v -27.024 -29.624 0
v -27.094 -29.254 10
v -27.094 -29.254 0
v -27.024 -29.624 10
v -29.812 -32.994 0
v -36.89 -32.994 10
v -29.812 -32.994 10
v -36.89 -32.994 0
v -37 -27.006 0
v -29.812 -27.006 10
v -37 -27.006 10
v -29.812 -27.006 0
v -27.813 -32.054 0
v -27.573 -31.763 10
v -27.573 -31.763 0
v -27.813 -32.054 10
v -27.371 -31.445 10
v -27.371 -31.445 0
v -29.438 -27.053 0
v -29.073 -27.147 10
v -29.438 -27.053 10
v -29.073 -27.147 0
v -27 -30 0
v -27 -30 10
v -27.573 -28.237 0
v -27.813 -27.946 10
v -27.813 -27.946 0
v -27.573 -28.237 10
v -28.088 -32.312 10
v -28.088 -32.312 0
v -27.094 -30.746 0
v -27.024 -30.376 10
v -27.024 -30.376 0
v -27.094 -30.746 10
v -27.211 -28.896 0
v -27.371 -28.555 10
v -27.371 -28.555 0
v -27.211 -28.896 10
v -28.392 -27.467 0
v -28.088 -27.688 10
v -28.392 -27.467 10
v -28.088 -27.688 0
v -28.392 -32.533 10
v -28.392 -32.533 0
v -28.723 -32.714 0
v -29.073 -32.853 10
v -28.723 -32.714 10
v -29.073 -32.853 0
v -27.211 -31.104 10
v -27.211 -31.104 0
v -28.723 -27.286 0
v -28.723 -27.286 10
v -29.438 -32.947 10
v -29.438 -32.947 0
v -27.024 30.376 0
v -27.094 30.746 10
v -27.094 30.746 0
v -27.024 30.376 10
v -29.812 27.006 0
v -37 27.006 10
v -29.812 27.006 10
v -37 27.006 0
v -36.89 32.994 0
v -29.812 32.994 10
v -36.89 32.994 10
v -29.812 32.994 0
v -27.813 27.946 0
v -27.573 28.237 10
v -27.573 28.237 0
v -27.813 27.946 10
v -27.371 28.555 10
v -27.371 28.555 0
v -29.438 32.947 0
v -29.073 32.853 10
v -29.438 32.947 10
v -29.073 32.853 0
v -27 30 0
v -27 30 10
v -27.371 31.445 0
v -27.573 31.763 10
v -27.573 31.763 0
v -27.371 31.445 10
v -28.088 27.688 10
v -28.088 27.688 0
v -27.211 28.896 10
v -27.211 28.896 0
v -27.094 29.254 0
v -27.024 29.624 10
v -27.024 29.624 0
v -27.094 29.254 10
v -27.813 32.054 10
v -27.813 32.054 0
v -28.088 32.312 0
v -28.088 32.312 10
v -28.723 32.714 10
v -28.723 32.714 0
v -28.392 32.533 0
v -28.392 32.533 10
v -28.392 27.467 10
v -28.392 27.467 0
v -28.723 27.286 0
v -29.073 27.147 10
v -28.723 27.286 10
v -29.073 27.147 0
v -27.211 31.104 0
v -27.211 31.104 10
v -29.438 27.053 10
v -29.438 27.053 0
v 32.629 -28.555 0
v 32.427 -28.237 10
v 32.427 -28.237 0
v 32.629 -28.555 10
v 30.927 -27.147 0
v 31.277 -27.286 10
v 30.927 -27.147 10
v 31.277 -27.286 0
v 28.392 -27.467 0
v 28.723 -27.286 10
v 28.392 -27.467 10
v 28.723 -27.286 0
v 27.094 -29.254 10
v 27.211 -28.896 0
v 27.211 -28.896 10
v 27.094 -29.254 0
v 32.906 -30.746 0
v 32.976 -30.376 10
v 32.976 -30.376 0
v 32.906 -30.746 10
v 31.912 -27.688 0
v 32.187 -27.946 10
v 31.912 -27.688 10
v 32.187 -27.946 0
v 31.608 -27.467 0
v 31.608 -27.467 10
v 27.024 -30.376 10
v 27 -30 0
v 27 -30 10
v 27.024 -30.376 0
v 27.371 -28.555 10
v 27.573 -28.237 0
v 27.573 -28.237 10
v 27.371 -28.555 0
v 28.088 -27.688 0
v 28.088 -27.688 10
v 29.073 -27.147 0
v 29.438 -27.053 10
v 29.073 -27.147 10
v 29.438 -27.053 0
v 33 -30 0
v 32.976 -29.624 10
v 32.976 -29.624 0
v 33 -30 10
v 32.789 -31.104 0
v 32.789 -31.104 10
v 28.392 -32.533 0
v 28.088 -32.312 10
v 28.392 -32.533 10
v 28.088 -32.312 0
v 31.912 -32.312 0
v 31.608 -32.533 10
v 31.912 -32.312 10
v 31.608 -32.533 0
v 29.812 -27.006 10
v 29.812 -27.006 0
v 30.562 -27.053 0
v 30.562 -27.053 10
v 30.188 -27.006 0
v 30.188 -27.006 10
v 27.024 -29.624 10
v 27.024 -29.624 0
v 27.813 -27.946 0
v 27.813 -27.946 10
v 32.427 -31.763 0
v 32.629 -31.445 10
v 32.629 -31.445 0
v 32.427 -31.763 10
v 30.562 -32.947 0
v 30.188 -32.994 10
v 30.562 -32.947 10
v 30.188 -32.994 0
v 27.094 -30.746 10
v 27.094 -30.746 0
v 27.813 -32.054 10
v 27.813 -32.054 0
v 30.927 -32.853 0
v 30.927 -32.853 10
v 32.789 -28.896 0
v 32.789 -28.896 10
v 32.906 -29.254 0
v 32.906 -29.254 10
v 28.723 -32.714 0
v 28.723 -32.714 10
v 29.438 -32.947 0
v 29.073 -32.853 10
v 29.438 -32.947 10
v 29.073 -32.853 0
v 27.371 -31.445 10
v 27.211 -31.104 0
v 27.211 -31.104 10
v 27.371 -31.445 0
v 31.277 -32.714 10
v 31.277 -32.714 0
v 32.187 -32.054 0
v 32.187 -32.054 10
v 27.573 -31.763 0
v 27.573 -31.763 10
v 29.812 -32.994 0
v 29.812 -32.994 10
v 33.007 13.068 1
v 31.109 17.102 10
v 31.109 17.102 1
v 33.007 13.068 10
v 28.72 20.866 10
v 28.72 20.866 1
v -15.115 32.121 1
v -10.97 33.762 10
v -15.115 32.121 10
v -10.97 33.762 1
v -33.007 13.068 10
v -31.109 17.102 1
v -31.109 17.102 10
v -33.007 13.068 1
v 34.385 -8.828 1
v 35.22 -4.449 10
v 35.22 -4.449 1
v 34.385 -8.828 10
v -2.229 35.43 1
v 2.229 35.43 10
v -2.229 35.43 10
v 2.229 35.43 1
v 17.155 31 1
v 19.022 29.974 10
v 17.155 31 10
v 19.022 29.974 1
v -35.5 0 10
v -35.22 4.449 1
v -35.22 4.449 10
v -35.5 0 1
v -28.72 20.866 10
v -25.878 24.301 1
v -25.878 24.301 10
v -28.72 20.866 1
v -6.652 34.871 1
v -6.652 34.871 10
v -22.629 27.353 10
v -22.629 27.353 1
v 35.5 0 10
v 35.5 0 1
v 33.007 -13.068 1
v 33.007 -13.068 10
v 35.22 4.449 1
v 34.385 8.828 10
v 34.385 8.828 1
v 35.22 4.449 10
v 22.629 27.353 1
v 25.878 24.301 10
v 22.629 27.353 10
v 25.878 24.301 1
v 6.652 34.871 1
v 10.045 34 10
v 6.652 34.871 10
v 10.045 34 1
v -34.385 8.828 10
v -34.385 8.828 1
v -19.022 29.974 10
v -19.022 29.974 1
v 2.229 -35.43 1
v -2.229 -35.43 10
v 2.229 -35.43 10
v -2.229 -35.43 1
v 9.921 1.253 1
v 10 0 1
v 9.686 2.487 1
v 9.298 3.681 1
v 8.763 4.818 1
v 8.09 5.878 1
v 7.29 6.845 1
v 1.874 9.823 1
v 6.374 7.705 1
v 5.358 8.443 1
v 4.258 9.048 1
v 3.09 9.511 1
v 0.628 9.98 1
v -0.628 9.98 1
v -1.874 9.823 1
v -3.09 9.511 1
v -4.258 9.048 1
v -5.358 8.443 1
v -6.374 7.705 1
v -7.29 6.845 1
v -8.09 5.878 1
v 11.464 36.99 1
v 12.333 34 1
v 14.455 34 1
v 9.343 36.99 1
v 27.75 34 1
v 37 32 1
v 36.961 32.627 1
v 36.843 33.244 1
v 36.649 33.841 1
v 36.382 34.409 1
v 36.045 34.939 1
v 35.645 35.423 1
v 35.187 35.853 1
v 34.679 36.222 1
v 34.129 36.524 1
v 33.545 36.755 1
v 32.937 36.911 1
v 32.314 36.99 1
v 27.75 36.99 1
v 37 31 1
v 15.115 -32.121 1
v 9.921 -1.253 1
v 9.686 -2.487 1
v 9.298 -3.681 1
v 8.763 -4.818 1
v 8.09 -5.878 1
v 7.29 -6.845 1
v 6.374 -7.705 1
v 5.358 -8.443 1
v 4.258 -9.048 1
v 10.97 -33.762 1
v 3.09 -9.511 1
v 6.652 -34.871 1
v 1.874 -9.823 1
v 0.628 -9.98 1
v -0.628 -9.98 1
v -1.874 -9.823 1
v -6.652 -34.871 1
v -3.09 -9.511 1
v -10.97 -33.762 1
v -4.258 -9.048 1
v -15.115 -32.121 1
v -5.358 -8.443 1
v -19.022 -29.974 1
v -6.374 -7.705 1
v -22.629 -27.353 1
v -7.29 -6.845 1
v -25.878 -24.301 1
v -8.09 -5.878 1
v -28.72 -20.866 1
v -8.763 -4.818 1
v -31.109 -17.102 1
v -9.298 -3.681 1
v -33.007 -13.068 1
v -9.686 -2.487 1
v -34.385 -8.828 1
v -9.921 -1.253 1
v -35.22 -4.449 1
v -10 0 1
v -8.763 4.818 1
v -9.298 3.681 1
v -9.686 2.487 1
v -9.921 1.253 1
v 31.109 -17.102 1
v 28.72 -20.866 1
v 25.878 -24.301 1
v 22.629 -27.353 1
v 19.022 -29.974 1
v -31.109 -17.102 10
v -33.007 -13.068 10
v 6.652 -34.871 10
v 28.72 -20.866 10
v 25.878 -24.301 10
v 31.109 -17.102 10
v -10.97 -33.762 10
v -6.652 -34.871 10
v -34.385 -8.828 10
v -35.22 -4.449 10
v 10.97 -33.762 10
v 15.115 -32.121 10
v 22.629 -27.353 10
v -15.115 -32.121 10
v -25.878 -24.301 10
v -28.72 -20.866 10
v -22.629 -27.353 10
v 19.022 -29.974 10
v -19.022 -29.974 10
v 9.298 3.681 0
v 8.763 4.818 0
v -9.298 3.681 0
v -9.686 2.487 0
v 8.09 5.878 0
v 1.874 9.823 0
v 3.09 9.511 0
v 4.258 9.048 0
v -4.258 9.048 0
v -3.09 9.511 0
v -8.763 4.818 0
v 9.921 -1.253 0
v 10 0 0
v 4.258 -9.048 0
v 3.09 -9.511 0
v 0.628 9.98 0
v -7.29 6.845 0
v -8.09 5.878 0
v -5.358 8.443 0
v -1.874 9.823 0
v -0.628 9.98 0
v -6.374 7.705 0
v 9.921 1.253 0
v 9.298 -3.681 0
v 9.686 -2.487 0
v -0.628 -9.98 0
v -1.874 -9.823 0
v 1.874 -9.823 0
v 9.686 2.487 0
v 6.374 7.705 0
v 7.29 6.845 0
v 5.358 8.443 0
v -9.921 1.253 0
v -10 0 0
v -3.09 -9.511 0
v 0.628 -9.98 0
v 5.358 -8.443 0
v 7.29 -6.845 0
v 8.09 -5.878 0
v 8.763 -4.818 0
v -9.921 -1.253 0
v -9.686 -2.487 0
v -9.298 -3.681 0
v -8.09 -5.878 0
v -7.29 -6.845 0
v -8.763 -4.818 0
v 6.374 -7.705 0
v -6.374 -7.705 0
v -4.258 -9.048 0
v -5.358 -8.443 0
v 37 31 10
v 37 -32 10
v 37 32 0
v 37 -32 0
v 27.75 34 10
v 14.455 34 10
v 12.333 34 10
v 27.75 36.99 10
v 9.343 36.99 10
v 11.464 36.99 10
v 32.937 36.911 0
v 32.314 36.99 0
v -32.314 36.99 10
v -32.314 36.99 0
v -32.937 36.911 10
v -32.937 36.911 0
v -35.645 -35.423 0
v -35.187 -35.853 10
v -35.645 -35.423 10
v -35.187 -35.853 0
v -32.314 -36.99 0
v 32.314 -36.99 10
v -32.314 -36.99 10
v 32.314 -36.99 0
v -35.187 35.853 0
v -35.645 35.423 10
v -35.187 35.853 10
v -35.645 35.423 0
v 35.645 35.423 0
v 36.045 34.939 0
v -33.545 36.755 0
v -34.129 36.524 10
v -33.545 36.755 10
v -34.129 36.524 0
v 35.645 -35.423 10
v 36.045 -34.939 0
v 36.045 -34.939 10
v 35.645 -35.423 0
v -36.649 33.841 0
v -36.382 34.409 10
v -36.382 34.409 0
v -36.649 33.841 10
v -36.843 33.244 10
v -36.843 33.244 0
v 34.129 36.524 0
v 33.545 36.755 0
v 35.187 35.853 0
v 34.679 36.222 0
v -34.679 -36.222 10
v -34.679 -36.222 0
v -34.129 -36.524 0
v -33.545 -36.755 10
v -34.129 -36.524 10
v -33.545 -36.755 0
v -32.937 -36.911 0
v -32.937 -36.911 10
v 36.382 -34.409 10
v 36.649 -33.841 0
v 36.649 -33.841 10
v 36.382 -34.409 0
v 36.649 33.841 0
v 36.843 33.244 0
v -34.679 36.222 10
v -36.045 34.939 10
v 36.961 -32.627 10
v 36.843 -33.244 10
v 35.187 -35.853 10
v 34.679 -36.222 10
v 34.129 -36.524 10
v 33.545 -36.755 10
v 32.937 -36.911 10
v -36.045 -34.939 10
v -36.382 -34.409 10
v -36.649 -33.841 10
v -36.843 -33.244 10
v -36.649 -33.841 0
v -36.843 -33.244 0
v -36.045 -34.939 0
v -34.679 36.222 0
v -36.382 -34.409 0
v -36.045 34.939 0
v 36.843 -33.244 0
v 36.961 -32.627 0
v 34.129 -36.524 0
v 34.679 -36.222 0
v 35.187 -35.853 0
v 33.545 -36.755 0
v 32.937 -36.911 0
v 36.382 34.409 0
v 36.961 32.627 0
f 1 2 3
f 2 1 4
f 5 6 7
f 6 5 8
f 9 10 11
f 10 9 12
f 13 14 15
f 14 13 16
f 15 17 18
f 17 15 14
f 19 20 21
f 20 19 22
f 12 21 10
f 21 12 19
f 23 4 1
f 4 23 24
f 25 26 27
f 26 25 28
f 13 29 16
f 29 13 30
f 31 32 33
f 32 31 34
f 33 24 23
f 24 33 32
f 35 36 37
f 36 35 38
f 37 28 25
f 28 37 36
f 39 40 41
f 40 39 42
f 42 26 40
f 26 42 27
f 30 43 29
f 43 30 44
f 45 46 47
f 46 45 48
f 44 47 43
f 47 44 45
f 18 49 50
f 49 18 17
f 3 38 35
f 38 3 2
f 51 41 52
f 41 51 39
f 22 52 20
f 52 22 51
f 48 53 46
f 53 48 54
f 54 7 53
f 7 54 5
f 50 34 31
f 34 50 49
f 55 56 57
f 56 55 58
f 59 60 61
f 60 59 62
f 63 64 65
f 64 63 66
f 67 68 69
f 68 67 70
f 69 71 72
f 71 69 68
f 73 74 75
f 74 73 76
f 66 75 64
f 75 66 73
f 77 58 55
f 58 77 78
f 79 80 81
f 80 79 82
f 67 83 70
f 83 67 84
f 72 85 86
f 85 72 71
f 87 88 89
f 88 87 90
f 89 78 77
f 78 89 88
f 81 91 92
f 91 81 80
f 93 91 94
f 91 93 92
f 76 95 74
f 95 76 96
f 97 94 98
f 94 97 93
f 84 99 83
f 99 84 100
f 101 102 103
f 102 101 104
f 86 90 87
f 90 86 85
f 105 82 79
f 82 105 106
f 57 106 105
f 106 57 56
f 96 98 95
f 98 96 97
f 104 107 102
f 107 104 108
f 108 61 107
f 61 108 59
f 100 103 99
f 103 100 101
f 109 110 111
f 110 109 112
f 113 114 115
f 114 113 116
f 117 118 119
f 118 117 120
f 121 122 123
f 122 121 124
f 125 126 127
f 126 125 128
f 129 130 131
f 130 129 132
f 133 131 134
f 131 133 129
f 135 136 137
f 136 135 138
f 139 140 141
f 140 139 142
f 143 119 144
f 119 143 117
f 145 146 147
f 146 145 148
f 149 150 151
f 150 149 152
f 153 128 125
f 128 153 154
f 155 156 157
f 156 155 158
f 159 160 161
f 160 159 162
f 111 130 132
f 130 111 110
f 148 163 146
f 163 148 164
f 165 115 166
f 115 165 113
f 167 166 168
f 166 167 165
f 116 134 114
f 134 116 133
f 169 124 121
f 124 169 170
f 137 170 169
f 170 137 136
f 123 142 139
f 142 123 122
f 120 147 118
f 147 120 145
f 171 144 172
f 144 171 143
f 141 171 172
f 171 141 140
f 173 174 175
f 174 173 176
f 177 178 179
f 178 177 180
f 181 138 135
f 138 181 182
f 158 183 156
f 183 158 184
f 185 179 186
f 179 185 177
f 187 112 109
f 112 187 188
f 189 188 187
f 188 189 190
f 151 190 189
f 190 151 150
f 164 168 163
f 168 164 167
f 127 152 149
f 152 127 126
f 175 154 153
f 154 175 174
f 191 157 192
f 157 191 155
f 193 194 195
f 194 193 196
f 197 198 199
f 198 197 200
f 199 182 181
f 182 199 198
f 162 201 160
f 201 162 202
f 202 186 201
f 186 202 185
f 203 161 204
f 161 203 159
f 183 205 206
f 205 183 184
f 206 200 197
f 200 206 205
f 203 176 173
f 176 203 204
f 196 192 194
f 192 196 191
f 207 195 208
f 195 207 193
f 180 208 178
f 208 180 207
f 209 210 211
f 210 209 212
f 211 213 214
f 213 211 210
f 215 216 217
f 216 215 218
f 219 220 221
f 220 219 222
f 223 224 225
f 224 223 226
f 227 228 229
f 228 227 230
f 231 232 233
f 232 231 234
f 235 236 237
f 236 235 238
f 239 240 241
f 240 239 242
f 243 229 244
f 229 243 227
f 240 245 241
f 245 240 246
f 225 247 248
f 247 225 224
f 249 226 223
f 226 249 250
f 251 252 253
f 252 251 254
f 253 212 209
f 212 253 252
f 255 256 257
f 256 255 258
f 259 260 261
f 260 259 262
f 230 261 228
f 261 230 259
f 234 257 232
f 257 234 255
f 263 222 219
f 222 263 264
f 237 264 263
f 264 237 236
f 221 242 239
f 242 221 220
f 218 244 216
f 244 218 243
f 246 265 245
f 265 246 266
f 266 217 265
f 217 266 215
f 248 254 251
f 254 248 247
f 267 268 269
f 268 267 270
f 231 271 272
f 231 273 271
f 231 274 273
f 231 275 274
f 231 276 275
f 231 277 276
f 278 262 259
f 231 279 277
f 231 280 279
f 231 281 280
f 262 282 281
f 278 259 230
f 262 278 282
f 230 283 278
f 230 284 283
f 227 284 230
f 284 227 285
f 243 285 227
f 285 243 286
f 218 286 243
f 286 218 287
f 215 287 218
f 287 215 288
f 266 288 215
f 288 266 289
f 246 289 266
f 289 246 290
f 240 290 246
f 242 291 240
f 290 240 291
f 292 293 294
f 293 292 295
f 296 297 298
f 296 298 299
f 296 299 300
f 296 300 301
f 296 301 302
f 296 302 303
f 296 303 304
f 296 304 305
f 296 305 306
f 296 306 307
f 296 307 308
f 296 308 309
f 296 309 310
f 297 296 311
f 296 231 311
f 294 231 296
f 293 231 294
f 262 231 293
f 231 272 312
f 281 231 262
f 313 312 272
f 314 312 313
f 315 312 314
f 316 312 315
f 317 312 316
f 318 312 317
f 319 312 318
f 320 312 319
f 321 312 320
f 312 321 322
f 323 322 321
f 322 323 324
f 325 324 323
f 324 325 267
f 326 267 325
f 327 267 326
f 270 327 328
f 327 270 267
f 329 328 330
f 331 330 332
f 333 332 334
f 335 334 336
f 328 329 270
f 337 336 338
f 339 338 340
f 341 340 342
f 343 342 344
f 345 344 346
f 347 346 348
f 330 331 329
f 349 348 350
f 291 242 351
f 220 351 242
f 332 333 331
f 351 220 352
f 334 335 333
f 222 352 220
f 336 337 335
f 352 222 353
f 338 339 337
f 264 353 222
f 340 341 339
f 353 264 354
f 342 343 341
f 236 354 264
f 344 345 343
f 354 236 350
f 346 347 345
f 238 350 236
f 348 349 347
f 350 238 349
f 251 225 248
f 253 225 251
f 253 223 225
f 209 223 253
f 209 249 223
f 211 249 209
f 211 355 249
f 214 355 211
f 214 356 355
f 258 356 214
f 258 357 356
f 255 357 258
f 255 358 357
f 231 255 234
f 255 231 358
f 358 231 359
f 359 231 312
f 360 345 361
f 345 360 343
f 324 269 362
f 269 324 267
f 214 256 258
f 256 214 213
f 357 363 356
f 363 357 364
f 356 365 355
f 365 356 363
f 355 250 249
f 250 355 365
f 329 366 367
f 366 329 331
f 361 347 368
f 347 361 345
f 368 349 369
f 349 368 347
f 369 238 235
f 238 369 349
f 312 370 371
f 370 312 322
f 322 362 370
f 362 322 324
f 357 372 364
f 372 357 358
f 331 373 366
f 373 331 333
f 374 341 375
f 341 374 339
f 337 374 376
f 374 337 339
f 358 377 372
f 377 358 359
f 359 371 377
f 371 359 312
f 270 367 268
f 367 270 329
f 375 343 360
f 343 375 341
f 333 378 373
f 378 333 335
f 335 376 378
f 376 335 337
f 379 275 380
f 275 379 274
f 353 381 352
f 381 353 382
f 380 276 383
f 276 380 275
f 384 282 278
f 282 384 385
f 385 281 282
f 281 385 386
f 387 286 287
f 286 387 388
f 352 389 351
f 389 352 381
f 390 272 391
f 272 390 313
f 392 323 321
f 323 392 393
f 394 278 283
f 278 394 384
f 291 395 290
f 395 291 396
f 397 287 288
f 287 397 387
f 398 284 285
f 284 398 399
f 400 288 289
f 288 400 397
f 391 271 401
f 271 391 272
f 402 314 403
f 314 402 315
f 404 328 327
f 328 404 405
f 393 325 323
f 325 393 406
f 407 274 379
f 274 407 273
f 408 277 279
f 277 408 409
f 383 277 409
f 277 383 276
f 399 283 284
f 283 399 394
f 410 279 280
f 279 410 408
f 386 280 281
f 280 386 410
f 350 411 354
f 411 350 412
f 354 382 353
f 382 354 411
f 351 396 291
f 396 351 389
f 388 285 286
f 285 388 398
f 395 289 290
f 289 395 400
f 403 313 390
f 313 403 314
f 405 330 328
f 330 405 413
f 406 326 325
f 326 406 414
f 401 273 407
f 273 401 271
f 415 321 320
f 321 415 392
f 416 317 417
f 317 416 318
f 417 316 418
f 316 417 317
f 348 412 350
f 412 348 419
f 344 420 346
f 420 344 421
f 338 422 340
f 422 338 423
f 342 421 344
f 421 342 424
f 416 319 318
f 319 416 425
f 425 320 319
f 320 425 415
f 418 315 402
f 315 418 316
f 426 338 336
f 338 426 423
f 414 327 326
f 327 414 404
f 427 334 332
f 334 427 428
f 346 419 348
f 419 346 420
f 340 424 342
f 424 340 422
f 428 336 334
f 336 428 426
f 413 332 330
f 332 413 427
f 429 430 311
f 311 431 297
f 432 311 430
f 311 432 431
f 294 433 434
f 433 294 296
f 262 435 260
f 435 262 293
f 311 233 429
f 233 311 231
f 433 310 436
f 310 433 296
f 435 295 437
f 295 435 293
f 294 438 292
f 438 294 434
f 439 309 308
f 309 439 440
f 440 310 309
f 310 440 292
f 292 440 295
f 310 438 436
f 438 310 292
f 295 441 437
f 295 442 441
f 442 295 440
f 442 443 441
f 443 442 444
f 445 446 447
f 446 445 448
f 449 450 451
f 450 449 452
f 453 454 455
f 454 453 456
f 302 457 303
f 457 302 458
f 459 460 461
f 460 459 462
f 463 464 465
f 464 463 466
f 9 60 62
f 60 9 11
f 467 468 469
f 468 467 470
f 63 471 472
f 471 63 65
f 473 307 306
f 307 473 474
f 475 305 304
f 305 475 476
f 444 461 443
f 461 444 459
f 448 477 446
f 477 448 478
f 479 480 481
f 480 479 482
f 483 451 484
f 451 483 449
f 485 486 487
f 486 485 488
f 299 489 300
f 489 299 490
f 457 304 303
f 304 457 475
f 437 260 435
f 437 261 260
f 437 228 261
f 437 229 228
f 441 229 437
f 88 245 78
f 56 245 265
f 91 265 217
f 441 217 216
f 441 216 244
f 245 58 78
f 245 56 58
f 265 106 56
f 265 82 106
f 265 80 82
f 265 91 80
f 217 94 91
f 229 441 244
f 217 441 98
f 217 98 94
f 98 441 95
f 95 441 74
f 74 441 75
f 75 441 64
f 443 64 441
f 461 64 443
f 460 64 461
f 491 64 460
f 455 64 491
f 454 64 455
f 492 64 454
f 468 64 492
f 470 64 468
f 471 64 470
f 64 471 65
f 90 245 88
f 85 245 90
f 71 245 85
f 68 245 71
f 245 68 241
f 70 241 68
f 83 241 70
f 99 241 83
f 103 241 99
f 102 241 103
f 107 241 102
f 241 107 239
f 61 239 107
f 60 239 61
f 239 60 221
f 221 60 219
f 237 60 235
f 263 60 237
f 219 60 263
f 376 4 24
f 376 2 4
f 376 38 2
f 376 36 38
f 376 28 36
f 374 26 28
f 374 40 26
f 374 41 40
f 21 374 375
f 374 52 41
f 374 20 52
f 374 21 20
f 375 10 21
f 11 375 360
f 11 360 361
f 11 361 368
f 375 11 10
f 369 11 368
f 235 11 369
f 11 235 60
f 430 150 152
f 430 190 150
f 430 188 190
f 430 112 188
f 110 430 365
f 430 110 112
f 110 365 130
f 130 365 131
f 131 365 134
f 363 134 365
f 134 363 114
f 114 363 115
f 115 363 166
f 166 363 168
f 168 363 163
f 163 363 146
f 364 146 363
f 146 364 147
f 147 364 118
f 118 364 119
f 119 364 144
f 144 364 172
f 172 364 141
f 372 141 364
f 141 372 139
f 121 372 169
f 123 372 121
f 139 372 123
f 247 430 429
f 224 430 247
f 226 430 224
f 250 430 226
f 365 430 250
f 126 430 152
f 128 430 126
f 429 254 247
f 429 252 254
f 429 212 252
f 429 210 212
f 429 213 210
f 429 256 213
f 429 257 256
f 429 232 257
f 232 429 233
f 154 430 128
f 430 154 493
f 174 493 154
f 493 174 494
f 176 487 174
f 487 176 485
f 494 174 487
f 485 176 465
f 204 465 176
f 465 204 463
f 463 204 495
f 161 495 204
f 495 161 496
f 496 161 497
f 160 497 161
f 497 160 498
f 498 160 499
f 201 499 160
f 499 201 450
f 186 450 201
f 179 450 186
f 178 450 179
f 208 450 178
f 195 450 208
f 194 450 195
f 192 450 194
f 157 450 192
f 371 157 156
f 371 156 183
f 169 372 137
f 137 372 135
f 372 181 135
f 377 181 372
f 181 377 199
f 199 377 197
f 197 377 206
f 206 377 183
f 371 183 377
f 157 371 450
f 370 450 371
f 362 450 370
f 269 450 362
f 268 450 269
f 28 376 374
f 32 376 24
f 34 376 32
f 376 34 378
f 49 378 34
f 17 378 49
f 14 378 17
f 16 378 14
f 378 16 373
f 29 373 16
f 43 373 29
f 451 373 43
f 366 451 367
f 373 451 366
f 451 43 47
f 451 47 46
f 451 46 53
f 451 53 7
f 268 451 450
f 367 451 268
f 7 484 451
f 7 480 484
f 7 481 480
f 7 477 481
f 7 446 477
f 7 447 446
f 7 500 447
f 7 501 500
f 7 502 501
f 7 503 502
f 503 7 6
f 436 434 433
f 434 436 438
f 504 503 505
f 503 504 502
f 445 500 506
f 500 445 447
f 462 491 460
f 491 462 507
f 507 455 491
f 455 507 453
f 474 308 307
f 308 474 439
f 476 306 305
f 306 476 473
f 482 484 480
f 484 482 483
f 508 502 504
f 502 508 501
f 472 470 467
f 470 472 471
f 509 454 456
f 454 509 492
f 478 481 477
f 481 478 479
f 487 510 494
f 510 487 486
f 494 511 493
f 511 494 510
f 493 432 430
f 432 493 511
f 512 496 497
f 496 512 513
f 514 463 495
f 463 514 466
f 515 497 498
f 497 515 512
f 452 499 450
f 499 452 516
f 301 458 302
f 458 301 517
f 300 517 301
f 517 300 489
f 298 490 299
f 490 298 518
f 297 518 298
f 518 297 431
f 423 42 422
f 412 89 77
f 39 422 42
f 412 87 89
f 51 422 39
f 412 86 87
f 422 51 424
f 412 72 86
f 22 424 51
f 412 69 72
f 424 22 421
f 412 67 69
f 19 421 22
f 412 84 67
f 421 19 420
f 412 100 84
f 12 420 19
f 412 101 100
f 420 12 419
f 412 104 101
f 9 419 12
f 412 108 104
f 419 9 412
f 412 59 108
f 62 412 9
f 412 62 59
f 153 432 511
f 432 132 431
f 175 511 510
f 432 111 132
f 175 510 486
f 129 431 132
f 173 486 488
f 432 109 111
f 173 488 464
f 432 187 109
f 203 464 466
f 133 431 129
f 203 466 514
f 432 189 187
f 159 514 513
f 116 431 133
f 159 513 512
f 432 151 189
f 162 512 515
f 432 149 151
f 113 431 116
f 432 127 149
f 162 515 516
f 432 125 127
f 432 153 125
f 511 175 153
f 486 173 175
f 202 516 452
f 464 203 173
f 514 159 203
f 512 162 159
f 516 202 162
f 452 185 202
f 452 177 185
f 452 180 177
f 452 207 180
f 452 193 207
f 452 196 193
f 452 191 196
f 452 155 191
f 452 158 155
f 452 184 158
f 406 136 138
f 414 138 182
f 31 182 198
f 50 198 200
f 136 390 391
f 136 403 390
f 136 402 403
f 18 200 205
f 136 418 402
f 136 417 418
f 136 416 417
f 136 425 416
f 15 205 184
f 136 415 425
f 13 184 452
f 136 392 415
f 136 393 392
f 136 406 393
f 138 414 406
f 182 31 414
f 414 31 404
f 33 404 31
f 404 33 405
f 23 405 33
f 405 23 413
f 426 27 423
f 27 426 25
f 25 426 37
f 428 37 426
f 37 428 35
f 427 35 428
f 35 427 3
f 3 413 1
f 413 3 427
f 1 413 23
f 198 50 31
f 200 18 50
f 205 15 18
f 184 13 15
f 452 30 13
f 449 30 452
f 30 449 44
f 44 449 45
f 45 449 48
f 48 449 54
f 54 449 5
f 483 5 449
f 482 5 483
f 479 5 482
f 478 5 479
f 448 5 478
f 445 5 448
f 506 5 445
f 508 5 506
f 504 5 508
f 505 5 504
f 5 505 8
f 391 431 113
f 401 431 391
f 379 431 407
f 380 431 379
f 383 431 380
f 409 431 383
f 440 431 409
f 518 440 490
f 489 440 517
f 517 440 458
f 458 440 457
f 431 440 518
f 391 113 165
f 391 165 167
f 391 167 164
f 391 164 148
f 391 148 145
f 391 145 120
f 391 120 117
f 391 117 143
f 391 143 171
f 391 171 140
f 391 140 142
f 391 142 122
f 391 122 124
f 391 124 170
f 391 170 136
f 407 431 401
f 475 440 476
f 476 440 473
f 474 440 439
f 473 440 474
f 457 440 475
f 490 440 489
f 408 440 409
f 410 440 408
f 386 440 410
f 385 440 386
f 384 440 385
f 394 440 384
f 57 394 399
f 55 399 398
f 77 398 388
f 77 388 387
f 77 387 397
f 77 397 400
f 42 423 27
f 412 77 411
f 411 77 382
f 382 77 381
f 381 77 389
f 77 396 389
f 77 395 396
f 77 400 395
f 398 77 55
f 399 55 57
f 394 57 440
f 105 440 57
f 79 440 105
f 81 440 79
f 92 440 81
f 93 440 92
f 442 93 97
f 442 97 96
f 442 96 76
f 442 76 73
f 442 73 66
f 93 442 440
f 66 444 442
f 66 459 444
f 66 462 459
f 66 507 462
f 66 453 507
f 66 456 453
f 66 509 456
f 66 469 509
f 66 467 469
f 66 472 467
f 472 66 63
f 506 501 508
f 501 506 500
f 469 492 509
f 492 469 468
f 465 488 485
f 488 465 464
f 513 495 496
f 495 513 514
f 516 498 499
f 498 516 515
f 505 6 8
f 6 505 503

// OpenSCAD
$fn = 50;


difference() {
	union() {
		translate(v = [0, 0, 0]) {
			rotate(a = [0, 0, 0]) {
				hull() {
					translate(v = [-32.0000000000, 32.0000000000, 0]) {
						rotate(a = [0, 0, 0]) {
							translate(v = [0, 0, 0]) {
								rotate(a = [0, 0, 0]) {
									cylinder(h = 10, r = 5);
								}
							}
						}
					}
					translate(v = [32.0000000000, 32.0000000000, 0]) {
						rotate(a = [0, 0, 0]) {
							translate(v = [0, 0, 0]) {
								rotate(a = [0, 0, 0]) {
									cylinder(h = 10, r = 5);
								}
							}
						}
					}
					translate(v = [-32.0000000000, -32.0000000000, 0]) {
						rotate(a = [0, 0, 0]) {
							translate(v = [0, 0, 0]) {
								rotate(a = [0, 0, 0]) {
									cylinder(h = 10, r = 5);
								}
							}
						}
					}
					translate(v = [32.0000000000, -32.0000000000, 0]) {
						rotate(a = [0, 0, 0]) {
							translate(v = [0, 0, 0]) {
								rotate(a = [0, 0, 0]) {
									cylinder(h = 10, r = 5);
								}
							}
						}
					}
				}
			}
		}
	}
	union() {
		translate(v = [-37.5000000000, -30.0000000000, -125]) {
			rotate(a = [0, 0, 0]) {
				hull() {
					translate(v = [7.5000000000, 0, 0]) {
						rotate(a = [0, 0, 0]) {
							translate(v = [0, 0, 0]) {
								rotate(a = [0, 0, 0]) {
									cylinder(h = 250, r = 3.0000000000);
								}
							}
						}
					}
					translate(v = [-7.5000000000, 0, 0]) {
						rotate(a = [0, 0, 0]) {
							translate(v = [0, 0, 0]) {
								rotate(a = [0, 0, 0]) {
									cylinder(h = 250, r = 3.0000000000);
								}
							}
						}
					}
				}
			}
		}
		translate(v = [-37.5000000000, 30.0000000000, -125]) {
			rotate(a = [0, 0, 0]) {
				hull() {
					translate(v = [7.5000000000, 0, 0]) {
						rotate(a = [0, 0, 0]) {
							translate(v = [0, 0, 0]) {
								rotate(a = [0, 0, 0]) {
									cylinder(h = 250, r = 3.0000000000);
								}
							}
						}
					}
					translate(v = [-7.5000000000, 0, 0]) {
						rotate(a = [0, 0, 0]) {
							translate(v = [0, 0, 0]) {
								rotate(a = [0, 0, 0]) {
									cylinder(h = 250, r = 3.0000000000);
								}
							}
						}
					}
				}
			}
		}
		translate(v = [30.0000000000, -30.0000000000, -125.0000000000]) {
			rotate(a = [0, 0, 0]) {
				cylinder(h = 250, r = 3.0000000000);
			}
		}
		translate(v = [0, 0, 1.0000000000]) {
			rotate(a = [0, 0, 0]) {
				cylinder(h = 12, r = 35.5000000000);
			}
		}
		translate(v = [0, 0, -5.0000000000]) {
			rotate(a = [0, 0, 0]) {
				cylinder(h = 10, r = 10.0000000000);
			}
		}
		translate(v = [0.0000000000, 31.0000000000, 1]) {
			rotate(a = [0, 0, 0]) {
				cube(size = [37.0000000000, 3, 12]);
			}
		}
		translate(v = [27.7500000000, 31.0000000000, 1]) {
			rotate(a = [0, 0, 0]) {
				cube(size = [9.2500000000, 6, 12]);
			}
		}
		translate(v = [8.5833333333, 37.7500000000, 1]) {
			rotate(a = [0, 0, -45]) {
				cube(size = [7.5000000000, 1.5000000000, 12]);
			}
		}
	}
}
